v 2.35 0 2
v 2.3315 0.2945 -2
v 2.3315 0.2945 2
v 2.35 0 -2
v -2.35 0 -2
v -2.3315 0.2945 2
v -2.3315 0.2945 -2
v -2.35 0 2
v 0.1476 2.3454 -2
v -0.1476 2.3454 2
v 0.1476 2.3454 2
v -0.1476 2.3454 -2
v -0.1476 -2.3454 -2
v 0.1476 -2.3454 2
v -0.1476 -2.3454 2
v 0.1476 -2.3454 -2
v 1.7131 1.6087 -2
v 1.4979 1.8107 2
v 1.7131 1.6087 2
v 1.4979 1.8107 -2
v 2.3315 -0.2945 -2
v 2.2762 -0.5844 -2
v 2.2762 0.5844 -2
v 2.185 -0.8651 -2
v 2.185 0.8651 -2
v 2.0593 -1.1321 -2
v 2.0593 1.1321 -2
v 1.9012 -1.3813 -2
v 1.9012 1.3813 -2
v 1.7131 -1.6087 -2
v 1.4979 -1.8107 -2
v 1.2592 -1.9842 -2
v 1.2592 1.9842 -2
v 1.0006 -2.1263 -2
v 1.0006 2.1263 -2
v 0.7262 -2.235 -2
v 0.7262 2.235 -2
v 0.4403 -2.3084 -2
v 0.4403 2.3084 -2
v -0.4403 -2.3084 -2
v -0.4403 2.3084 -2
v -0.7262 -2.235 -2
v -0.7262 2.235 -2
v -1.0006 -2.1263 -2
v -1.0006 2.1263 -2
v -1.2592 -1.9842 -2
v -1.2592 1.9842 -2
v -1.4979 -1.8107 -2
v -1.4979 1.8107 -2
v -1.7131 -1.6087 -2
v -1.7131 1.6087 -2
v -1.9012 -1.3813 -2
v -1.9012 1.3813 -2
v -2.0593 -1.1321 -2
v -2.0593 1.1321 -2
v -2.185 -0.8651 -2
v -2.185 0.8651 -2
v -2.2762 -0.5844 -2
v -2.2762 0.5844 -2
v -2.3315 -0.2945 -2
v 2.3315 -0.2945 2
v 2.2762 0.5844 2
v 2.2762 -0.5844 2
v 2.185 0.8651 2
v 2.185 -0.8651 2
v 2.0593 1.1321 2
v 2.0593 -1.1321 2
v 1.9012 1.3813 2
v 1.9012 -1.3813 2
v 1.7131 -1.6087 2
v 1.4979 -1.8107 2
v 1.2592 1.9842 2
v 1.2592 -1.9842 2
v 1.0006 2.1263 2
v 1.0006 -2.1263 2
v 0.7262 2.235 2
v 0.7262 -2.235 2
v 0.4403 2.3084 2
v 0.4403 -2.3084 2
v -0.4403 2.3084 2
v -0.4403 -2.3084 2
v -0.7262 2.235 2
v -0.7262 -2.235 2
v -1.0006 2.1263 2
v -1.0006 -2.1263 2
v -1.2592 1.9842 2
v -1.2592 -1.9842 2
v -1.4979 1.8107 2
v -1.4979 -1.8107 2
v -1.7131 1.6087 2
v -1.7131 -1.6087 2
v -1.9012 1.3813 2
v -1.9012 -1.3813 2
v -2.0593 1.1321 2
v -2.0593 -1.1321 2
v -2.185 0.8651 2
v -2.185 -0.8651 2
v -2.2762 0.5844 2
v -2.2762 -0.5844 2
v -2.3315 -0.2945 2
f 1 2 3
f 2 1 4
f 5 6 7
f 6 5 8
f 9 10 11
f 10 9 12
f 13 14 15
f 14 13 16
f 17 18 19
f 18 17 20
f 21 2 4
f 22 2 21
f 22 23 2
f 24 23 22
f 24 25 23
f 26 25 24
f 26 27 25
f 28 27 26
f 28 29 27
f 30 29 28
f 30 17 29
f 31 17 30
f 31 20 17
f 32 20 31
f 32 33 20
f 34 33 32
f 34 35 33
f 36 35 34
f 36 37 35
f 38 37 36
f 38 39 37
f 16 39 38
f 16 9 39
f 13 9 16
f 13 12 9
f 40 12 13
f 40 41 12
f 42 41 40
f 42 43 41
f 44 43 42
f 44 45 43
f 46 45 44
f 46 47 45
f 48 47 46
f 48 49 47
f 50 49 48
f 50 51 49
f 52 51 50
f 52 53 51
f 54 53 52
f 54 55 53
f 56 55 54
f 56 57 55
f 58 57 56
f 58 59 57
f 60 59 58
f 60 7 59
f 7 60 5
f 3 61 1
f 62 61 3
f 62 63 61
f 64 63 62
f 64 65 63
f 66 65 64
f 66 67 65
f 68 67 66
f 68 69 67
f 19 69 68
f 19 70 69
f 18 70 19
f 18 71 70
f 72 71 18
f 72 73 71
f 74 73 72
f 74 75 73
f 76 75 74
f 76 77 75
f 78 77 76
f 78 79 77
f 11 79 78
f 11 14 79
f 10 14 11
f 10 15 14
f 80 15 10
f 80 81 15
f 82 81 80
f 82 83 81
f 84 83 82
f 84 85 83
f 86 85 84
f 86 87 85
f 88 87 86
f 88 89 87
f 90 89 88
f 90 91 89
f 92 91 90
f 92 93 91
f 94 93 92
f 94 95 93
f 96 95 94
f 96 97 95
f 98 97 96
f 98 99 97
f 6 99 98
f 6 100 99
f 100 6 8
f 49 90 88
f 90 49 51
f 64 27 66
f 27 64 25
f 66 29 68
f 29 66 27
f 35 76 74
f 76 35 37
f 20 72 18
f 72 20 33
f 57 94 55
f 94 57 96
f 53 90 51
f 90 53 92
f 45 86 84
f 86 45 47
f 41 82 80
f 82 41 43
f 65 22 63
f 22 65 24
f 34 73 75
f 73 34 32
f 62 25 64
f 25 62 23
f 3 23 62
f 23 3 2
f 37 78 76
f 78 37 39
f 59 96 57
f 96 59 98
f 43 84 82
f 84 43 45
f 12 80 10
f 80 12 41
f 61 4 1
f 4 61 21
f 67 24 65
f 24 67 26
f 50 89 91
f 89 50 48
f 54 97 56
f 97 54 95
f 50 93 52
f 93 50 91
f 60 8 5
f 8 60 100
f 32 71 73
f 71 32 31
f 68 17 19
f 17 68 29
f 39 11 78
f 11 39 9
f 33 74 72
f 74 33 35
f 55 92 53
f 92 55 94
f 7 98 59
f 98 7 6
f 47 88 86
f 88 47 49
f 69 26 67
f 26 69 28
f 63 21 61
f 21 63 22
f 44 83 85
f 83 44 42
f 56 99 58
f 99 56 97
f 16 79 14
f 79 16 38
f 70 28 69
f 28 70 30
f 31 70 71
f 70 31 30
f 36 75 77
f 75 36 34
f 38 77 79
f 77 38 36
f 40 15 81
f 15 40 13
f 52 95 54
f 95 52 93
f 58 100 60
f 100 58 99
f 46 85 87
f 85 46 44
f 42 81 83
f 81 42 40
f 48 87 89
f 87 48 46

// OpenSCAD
$fn = 50;


difference() {
	union() {
		translate(v = [0, 0, -2.0000000000]) {
			cylinder(h = 4, r = 2.3500000000);
		}
	}
	union() {
		translate(v = [0, 0, -100.0000000000]) {
			cylinder(h = 200, r = 0);
		}
	}
}
